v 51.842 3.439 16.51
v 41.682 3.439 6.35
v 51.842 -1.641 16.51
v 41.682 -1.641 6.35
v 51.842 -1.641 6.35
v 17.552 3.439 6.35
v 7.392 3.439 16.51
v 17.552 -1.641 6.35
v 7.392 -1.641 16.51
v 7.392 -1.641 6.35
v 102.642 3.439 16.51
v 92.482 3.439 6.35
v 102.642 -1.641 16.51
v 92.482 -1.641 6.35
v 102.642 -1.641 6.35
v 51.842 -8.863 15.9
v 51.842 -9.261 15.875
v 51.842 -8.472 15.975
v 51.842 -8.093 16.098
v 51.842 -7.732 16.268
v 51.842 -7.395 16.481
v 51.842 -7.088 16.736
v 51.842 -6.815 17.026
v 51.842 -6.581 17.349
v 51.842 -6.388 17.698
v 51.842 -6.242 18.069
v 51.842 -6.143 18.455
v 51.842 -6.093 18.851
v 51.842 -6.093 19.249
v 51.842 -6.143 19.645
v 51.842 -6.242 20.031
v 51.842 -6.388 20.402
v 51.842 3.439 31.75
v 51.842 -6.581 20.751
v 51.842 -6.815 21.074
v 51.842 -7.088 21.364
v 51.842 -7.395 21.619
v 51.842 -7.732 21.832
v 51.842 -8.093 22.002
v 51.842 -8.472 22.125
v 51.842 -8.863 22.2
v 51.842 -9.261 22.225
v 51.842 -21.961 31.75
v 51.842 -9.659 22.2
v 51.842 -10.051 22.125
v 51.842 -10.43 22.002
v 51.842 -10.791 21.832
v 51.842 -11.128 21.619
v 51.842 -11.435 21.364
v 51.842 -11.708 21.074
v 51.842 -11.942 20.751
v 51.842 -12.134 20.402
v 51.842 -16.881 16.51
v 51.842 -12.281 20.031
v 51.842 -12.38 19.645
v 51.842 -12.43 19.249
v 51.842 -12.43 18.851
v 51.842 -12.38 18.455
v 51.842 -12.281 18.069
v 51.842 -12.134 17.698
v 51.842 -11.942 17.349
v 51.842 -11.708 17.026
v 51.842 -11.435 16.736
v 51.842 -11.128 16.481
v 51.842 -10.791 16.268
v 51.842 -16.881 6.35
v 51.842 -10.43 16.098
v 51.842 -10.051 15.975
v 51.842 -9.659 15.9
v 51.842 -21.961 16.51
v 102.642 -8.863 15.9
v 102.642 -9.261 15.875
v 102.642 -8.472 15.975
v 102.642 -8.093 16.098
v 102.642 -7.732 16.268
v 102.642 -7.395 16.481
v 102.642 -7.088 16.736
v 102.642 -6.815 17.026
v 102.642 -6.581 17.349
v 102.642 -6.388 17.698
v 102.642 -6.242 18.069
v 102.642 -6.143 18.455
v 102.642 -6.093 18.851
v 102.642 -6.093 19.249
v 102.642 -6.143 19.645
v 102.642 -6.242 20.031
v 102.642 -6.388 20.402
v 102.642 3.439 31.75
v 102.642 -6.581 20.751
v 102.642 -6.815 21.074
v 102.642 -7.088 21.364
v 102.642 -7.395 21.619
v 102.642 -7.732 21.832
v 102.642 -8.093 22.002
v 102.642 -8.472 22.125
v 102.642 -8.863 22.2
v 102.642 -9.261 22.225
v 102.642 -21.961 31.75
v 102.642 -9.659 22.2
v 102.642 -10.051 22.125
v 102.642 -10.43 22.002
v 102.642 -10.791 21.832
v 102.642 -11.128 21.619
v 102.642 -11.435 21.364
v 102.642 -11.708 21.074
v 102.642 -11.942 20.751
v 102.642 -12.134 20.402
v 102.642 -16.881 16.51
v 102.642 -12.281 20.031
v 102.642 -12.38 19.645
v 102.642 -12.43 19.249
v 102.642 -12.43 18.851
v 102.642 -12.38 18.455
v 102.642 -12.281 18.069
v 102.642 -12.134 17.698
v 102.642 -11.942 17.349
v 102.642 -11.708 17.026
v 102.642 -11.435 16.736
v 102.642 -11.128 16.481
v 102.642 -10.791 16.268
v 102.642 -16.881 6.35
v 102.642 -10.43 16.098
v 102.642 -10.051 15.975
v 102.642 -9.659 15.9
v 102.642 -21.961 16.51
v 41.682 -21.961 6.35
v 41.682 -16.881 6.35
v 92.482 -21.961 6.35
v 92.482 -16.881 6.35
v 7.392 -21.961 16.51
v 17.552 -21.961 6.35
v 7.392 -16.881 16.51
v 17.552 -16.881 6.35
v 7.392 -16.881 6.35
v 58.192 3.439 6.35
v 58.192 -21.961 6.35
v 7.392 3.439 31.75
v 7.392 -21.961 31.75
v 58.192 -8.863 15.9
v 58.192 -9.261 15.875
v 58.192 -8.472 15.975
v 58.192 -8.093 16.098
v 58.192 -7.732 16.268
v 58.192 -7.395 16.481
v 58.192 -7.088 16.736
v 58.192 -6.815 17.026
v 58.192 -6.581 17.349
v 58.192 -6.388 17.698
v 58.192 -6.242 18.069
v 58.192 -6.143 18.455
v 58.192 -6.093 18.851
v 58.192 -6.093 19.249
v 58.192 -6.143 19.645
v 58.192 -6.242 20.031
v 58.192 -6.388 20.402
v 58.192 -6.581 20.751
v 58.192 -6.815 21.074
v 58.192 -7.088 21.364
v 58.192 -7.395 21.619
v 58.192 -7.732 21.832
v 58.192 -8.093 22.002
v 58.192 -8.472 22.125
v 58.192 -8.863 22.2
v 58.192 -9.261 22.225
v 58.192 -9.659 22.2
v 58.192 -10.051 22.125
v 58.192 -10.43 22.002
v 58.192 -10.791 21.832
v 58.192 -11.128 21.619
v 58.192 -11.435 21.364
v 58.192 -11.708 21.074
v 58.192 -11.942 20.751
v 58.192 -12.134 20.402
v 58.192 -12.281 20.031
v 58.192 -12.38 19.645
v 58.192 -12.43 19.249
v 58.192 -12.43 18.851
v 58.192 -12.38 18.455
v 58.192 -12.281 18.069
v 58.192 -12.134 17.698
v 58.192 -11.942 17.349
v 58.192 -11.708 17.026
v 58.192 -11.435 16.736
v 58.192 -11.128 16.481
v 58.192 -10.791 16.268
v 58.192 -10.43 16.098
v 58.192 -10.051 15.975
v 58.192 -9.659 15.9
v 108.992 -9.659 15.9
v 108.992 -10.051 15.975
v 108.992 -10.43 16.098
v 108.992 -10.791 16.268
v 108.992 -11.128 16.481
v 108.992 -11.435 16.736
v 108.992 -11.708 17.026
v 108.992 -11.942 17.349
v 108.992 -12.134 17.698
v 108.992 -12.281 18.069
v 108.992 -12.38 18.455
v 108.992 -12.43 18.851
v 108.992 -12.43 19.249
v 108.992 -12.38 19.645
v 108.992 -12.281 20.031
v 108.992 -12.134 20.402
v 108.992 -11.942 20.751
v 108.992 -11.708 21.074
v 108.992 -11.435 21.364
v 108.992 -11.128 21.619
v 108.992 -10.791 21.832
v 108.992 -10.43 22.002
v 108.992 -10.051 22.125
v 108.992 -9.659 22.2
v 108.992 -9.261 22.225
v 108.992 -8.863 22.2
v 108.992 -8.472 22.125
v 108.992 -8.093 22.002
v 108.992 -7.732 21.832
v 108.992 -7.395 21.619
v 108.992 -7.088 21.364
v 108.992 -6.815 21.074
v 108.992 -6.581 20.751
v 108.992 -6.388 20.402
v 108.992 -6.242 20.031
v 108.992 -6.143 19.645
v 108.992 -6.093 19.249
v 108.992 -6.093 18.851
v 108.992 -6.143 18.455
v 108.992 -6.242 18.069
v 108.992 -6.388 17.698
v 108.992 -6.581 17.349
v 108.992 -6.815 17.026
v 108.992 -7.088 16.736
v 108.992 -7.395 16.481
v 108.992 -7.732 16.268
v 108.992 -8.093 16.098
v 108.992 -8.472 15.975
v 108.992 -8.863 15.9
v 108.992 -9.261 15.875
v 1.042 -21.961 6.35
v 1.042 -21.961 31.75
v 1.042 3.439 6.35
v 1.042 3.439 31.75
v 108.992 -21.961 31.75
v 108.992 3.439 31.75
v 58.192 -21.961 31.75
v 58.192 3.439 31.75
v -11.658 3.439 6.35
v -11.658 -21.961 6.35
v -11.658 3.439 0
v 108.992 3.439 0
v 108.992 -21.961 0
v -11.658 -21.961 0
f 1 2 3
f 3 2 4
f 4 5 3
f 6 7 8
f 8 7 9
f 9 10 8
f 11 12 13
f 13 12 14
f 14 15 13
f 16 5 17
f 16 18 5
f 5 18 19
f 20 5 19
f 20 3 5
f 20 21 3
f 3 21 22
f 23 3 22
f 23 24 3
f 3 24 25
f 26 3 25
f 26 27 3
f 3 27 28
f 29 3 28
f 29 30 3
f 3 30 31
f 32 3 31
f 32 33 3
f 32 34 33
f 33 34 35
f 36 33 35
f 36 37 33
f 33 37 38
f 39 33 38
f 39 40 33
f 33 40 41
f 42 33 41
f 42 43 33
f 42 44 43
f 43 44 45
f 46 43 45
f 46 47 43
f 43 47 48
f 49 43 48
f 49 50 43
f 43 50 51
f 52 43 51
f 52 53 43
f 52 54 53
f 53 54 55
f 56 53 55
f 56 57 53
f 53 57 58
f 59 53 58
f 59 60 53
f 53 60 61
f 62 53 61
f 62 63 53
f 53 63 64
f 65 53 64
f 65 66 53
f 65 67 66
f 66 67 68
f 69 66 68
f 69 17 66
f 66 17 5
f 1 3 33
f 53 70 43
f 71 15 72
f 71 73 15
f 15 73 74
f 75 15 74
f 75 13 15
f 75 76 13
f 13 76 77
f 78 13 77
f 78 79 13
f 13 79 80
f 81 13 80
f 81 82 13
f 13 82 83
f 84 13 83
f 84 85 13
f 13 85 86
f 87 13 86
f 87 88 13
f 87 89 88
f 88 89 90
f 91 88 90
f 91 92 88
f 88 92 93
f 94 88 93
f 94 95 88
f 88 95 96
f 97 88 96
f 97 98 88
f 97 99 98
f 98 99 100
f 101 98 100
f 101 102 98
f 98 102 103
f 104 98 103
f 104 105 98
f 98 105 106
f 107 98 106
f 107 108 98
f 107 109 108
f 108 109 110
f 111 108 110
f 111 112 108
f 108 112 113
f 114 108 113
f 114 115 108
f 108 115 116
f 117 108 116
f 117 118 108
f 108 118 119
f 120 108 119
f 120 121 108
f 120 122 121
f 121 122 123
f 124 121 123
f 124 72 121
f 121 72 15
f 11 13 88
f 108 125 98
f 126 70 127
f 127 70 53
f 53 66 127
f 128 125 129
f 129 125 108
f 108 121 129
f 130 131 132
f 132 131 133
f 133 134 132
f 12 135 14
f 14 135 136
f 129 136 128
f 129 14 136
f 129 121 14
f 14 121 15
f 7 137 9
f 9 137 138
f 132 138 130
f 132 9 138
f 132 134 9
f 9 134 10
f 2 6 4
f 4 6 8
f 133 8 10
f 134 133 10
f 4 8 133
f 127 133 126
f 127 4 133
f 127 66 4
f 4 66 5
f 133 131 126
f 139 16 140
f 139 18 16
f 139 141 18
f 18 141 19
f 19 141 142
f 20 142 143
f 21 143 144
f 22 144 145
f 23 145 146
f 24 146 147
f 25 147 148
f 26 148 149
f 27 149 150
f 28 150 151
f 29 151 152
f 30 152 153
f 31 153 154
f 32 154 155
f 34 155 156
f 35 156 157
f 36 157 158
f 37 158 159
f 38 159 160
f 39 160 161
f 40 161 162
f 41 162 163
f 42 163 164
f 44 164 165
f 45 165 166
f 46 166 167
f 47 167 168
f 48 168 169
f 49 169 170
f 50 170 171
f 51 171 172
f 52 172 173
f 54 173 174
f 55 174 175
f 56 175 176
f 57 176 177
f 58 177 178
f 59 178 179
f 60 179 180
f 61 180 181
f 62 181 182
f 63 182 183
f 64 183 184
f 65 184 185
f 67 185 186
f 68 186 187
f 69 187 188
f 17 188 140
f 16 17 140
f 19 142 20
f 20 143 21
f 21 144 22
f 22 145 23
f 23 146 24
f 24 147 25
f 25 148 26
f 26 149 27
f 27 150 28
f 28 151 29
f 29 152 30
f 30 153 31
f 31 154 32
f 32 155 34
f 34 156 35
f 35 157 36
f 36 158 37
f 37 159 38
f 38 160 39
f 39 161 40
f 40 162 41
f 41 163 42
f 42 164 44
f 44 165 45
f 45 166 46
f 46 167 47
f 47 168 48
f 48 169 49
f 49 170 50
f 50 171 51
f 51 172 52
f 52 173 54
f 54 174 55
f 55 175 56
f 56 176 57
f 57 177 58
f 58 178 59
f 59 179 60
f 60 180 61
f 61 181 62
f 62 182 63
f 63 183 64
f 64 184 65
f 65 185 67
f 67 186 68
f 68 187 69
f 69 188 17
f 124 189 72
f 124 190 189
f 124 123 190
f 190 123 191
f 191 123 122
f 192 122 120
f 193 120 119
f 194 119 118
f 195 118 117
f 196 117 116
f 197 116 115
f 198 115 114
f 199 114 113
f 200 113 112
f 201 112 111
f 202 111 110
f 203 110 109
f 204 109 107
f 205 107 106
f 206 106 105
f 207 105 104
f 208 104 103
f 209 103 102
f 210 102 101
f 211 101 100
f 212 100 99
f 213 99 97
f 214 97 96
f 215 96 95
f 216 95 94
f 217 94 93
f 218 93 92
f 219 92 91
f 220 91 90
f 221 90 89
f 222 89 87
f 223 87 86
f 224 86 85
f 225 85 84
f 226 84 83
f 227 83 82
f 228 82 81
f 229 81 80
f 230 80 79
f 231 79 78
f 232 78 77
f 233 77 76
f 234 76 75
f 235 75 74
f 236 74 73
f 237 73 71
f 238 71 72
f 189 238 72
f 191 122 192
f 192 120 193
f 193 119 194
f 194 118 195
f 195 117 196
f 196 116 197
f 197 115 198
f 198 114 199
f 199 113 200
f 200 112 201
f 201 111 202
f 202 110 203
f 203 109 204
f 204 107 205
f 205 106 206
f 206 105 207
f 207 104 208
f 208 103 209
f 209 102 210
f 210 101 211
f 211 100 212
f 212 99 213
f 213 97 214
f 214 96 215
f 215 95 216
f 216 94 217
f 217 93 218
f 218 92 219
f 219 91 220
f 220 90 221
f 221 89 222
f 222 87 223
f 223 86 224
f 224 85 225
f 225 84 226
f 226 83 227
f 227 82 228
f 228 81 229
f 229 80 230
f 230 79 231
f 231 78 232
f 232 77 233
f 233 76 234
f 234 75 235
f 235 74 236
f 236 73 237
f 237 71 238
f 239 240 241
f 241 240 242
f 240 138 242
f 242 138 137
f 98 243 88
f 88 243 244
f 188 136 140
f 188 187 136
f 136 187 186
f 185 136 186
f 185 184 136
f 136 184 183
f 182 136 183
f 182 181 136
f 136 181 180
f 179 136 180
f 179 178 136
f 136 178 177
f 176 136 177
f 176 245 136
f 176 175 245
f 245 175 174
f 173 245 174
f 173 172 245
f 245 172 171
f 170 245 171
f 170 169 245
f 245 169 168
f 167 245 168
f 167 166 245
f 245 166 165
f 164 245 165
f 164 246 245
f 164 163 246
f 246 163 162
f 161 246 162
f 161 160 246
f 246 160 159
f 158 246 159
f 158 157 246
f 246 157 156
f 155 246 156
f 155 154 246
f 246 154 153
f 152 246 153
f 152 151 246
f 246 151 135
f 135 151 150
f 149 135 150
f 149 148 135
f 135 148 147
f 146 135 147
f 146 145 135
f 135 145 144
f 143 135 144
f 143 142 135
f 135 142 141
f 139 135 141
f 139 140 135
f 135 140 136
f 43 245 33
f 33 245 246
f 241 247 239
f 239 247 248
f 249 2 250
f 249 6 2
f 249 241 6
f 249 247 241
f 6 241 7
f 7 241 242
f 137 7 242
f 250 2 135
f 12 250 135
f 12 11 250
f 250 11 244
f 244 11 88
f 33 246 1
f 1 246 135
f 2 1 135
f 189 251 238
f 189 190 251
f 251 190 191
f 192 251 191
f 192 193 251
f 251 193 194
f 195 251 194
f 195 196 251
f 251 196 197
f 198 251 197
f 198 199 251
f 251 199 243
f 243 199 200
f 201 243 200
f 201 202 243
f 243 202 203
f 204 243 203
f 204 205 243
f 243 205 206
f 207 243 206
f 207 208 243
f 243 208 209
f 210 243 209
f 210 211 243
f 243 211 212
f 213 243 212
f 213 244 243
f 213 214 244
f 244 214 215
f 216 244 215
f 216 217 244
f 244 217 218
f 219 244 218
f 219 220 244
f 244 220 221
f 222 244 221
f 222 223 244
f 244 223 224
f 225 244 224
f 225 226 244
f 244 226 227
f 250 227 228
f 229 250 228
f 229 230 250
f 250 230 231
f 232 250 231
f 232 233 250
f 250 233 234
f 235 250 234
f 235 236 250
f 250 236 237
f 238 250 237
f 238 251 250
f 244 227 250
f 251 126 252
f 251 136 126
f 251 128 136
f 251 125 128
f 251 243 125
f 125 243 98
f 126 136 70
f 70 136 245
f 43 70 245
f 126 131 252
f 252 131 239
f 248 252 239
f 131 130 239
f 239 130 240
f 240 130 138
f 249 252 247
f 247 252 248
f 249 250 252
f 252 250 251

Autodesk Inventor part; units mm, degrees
ref_plane "YZ Plane" through (0, 0, 0) normal (1, 0, 0) x (0, 1, 0)
ref_plane "XZ Plane" through (0, 0, 0) normal (0, 1, 0) x (-1, 0, 0)
ref_plane "XY Plane" through (0, 0, 0) normal (0, 0, 1) x (1, 0, 0)
sketch "Sketch1" plane through (0, 0, 0) normal (0, 0, 1) x (1, 0, 0)
  line L0 (-11.658, 3.4387) -> (-11.658, -21.9613)
  line L1 (-11.658, 3.4387) -> (108.992, 3.4387)
  line L2 (108.992, 3.4387) -> (108.992, -21.9613)
  line L3 (108.992, -21.9613) -> (-11.658, -21.9613)
  point P0 (0, 0)
  dimension "d0" = 25.4
  dimension "d1" = 120.65
  dimension "d2" = 25.4
extrude "Extrusion1" add sketch "Sketch1" along normal blind 6.35
ref_plane "Work Plane1" through (-11.658, -21.9613, 6.35) normal (0, 1, 0) x (1, 0, 0)
sketch "Sketch3" plane through (-11.658, -21.9613, 6.35) normal (0, 1, 0) x (1, 0, 0)
  line L0 (0, 0) -> (120.65, 0) projected
  line L1 (120.65, -25.4) -> (0, -25.4) projected
  line L2 (120.65, 0) -> (120.65, -25.4) projected
  line L3 (0, -25.4) -> (12.7, -25.4)
  line L4 (12.7, -25.4) -> (12.7, 0)
  line L5 (12.7, 0) -> (19.05, 0)
  line L6 (19.05, 0) -> (19.05, -25.4)
  line L7 (19.05, -25.4) -> (12.7, -25.4)
  line L8 (19.05, -25.4) -> (63.5, -25.4)
  line L9 (63.5, -25.4) -> (63.5, 0)
  line L10 (63.5, 0) -> (69.85, 0)
  line L11 (69.85, 0) -> (69.85, -25.4)
  line L12 (69.85, -25.4) -> (63.5, -25.4)
  line L13 (69.85, -25.4) -> (114.3, -25.4)
  line L14 (114.3, -25.4) -> (114.3, 0)
  line L15 (120.65, 0) -> (114.3, 0)
  line L16 (120.65, 0) -> (120.65, -25.4)
  line L17 (114.3, -25.4) -> (120.65, -25.4)
  point P0 (11.658, 6.35)
  dimension "d8" = 12.7
  dimension "d9" = 6.35
  dimension "d10" = 25.4
  dimension "d11" = 44.45
  dimension "d12" = 6.35
  dimension "d13" = 25.4
  dimension "d14" = 44.45
extrude "Extrusion3" add sketch "Sketch3" along normal blind 25.4 contours L0 L6 L1 L4 | L0 L11 L1 L9 | L0 L2 L1 L14
ref_plane "Work Plane2" through (7.392, -21.9613, 31.75) normal (1, 0, 0) x (0, 0, -1)
sketch "Sketch4" plane through (7.392, -21.9613, 31.75) normal (1, 0, 0) x (0, 0, -1)
  line L0 (25.4, 0) -> (0, 0) projected
  line L1 (25.4, 25.4) -> (25.4, 0) projected
  line L2 (0, 25.4) -> (25.4, 25.4) projected
  line L3 (0, 0) -> (0, 25.4) projected
  point P0 (31.75, 21.9613)
sketch "Sketch5" plane through (108.992, -21.9613, 0) normal (1, 0, 0) x (0, 0, -1)
  line L0 (-31.75, 0) -> (-31.75, 31.75) projected
  line L1 (-31.75, 31.75) -> (-31.75, 12.7)
  line L2 (-31.75, 12.7) -> (-19.05, 12.7)
  circle A0 centre (-19.05, 12.7) radius 3.175
  point P0 (0, 21.9613)
  dimension "d17" = 19.05
  dimension "d18" = 12.7
  dimension "d19" = 6.35
extrude "Extrusion4" cut sketch "Sketch5" against normal blind 76.2
sketch "Sketch6" plane through (-11.658, -21.9613, 0) normal (0, -1, 0) x (1, 0, 0)
  line L0 (114.3, 6.35) -> (114.3, 31.75) projected
  line L1 (69.85, 6.35) -> (114.3, 6.35) projected
  line L2 (63.5, 6.35) -> (63.5, 31.75) projected
  line L3 (19.05, 6.35) -> (63.5, 6.35) projected
  line L4 (19.05, 31.75) -> (19.05, 6.35) projected
  line L5 (19.05, 6.35) -> (19.05, 16.51)
  line L6 (19.05, 6.35) -> (29.21, 6.35)
  line L7 (29.21, 6.35) -> (19.05, 16.51)
  line L8 (63.5, 6.35) -> (53.34, 6.35)
  line L9 (53.34, 6.35) -> (63.5, 16.51)
  line L10 (63.5, 6.35) -> (63.5, 16.51)
  line L11 (114.3, 6.35) -> (104.14, 6.35)
  line L12 (104.14, 6.35) -> (114.3, 16.51)
  line L13 (114.3, 6.35) -> (114.3, 16.51)
  point P0 (11.658, 0)
  dimension "d22" = 10.16
  dimension "d23" = 10.16
  dimension "d24" = 10.16
  dimension "d25" = 10.16
extrude "Extrusion5" add sketch "Sketch6" against normal blind 5.08
sketch "Sketch7" plane through (-11.658, 3.4387, 0) normal (0, 1, 0) x (1, 0, 0)
  line L0 (19.05, -31.75) -> (19.05, -6.35) projected
  line L1 (63.5, -6.35) -> (19.05, -6.35) projected
  line L2 (63.5, -6.35) -> (63.5, -31.75) projected
  line L3 (19.05, -6.35) -> (19.05, -16.51)
  line L4 (19.05, -6.35) -> (29.21, -6.35)
  line L5 (29.21, -6.35) -> (19.05, -16.51)
  line L6 (63.5, -6.35) -> (53.34, -6.35)
  line L7 (53.34, -6.35) -> (63.5, -16.51)
  line L8 (63.5, -6.35) -> (63.5, -16.51)
  line L9 (114.3, -6.35) -> (104.14, -6.35)
  line L10 (104.14, -6.35) -> (114.3, -16.51)
  line L11 (114.3, -6.35) -> (114.3, -16.51)
  point P0 (11.658, 0)
  dimension "d28" = 10.16
  dimension "d29" = 10.16
  dimension "d30" = 10.16
  dimension "d31" = 10.16
extrude "Extrusion6" add sketch "Sketch7" against normal blind 5.08
properties part number "side"
